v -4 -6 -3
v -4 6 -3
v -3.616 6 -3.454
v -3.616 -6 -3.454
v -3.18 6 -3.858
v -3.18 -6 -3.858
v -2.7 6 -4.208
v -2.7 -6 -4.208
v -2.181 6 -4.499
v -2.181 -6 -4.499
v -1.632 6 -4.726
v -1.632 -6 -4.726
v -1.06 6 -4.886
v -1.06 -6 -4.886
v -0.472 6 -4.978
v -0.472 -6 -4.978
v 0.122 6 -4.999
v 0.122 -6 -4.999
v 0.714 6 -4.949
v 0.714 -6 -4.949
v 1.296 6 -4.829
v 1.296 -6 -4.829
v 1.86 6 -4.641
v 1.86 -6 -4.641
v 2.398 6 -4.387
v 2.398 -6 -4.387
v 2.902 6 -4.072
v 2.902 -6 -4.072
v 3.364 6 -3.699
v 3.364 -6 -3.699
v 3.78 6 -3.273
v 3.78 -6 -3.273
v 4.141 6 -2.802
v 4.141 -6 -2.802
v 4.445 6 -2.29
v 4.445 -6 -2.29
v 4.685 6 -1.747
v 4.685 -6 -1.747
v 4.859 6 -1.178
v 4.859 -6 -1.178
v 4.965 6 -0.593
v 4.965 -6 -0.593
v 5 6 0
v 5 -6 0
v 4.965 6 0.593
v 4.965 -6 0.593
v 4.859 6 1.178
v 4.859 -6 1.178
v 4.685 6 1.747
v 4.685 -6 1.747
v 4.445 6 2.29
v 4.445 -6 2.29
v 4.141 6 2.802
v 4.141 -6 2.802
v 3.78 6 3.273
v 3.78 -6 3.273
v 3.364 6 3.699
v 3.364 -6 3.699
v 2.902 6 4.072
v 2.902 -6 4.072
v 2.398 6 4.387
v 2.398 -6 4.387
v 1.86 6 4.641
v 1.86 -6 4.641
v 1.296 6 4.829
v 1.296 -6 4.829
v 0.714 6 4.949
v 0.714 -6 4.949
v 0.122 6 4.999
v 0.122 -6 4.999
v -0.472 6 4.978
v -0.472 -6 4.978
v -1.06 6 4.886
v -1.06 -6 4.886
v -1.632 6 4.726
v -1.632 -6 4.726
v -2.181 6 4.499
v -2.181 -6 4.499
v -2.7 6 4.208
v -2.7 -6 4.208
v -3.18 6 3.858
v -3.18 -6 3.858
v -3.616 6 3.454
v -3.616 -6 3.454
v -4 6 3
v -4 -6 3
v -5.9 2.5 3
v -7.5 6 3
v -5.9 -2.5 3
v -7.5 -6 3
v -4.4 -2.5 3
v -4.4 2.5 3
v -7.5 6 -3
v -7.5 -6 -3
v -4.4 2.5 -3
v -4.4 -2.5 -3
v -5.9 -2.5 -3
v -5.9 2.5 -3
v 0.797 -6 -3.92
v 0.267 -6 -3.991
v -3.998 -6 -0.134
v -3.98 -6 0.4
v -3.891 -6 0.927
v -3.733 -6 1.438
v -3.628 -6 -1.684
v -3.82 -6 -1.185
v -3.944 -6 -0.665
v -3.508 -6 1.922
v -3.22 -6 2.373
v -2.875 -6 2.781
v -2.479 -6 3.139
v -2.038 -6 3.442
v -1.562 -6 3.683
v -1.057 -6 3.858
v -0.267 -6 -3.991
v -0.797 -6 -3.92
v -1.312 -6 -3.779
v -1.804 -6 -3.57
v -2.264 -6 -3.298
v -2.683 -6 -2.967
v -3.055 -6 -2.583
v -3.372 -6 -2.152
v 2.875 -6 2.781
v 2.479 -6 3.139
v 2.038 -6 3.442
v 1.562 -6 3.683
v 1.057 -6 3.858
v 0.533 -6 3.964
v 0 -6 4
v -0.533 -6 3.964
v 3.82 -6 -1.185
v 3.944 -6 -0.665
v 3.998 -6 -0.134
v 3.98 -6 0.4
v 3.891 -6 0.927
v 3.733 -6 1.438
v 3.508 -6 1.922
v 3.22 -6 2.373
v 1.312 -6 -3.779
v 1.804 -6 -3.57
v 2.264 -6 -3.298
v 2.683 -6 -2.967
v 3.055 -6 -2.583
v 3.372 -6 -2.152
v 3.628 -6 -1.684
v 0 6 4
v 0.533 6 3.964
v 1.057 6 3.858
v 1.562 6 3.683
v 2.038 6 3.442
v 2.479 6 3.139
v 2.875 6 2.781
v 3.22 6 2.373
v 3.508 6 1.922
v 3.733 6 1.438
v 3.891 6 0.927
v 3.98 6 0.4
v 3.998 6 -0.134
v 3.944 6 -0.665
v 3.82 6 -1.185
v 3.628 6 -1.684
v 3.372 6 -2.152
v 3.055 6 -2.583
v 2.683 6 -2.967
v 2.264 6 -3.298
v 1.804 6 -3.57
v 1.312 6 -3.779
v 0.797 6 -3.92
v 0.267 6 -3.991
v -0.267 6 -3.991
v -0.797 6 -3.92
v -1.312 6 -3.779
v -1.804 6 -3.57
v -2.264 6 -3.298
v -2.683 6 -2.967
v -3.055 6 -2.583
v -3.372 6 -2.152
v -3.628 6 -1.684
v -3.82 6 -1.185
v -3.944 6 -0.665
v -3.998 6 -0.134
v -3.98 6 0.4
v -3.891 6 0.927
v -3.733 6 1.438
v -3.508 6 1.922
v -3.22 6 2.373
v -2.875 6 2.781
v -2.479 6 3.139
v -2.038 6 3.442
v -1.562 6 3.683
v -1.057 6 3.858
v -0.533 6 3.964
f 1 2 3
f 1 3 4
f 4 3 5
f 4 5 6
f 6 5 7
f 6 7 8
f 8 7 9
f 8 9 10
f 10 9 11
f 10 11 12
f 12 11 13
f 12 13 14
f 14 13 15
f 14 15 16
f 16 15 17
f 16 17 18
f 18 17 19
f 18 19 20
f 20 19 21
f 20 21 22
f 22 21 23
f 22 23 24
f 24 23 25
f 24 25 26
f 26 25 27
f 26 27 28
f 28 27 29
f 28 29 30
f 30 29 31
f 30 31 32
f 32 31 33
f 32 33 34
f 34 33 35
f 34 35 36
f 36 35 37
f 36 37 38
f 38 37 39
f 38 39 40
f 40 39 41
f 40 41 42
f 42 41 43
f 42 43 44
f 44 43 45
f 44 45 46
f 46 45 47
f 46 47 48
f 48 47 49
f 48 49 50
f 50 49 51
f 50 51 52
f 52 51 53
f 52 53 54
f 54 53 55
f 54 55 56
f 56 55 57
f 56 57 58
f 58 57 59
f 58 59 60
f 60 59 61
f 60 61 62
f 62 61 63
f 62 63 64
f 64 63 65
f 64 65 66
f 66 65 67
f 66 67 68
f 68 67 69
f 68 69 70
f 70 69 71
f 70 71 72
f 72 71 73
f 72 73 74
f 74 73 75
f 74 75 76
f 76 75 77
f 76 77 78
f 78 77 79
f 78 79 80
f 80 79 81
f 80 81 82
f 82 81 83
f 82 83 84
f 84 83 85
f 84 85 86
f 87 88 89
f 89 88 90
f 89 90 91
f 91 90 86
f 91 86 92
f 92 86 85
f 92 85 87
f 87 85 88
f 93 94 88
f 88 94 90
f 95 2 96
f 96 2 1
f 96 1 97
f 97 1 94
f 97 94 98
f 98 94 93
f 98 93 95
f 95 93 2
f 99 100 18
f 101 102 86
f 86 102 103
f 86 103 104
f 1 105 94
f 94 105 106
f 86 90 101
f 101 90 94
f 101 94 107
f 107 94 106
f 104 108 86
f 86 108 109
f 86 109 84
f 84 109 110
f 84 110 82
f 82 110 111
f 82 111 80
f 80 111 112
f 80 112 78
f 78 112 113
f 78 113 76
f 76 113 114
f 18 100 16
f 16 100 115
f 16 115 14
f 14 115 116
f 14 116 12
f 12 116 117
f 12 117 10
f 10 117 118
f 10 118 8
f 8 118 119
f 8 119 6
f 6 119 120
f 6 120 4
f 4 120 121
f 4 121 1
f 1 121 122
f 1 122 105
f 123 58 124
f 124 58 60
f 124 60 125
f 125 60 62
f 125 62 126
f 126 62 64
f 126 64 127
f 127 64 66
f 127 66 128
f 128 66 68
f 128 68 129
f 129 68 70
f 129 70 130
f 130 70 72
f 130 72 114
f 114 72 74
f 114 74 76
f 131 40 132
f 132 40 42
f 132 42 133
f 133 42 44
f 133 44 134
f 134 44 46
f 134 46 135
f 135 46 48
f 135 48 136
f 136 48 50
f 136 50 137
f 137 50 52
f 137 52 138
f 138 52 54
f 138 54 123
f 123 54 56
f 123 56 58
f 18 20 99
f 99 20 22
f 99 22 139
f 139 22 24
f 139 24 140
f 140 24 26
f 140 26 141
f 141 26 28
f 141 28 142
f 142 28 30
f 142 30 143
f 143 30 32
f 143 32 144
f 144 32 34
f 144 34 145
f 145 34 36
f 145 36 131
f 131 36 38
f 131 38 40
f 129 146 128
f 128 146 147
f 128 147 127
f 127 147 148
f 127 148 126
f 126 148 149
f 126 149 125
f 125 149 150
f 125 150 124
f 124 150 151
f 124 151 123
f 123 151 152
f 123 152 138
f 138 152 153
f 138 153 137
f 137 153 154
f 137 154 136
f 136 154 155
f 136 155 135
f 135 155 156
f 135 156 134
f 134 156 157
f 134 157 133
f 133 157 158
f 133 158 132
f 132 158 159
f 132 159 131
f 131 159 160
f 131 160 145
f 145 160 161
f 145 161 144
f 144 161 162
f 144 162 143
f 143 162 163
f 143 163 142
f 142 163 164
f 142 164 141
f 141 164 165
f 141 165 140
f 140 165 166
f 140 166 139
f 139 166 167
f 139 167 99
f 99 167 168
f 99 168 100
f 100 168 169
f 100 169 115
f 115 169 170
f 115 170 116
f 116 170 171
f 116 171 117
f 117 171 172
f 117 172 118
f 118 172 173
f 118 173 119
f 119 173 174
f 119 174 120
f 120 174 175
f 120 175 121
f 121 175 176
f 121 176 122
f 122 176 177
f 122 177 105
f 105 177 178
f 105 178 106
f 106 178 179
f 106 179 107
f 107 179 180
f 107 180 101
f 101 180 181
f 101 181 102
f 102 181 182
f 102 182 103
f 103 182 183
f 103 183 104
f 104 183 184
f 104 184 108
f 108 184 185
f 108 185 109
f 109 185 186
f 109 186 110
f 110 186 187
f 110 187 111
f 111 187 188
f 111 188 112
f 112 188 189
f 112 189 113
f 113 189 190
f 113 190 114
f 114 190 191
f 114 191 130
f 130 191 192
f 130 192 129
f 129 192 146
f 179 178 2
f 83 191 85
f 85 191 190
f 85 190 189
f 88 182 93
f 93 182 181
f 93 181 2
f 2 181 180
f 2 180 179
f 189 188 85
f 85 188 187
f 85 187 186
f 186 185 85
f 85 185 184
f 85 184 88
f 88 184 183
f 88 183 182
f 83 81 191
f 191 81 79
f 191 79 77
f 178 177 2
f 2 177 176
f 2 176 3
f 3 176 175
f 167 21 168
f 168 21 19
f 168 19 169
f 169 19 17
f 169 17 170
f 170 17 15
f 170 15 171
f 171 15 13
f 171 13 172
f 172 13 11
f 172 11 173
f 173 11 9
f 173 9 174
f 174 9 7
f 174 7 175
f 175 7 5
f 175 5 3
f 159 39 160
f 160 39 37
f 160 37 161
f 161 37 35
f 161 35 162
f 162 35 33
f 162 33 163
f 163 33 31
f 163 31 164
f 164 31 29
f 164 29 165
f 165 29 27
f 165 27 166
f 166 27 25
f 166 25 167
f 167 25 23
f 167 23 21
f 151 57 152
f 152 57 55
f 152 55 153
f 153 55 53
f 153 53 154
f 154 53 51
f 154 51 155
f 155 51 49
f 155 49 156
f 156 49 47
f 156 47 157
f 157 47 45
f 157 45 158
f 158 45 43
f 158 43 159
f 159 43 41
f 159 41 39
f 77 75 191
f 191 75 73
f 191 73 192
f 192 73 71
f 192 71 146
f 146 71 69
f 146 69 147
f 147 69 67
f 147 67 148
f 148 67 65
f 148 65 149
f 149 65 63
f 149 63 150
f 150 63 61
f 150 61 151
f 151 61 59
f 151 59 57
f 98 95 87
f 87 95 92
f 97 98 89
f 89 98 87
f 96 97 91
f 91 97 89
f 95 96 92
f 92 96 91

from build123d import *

# Parameters (mm, degrees)
BOSS_EXTRUDE1_DEPTH      = 6
BOSS_EXTRUDE1_DEPTH_BACK = 6
SKETCH1_R                = 4
SKETCH2_W                = 1.5
SKETCH2_H                = 5
CUT_EXTRUDE1_DEPTH       = 13.5


with BuildPart() as part:
    # Sketch1 → Boss-Extrude1 (new, two sides: drawn at the far end of the back side and taken through both)
    with BuildSketch(Plane(origin=(0, 0, 0), x_dir=(1, 0, 0), z_dir=(0, 1, 0)).offset(-BOSS_EXTRUDE1_DEPTH_BACK)):
        with BuildLine():
            Line((-4, 3), (-7.5, 3))
            Line((-7.5, 3), (-7.5, -3))
            Line((-7.5, -3), (-4, -3))
            ThreePointArc((-4, -3), (5, 0), (-4, 3))
        make_face()
        Circle(SKETCH1_R, mode=Mode.SUBTRACT)
    extrude(amount=BOSS_EXTRUDE1_DEPTH + BOSS_EXTRUDE1_DEPTH_BACK)

    # Sketch2 → Cut-Extrude1 (cut, through all)
    with BuildSketch(Plane(origin=(0, 0, -3), x_dir=(-1, 0, 0), z_dir=(0, 0, -1))):
        with Locations((5.15, 0)):
            Rectangle(SKETCH2_W, SKETCH2_H)
    extrude(amount=-CUT_EXTRUDE1_DEPTH, mode=Mode.SUBTRACT)


solid = part.part
